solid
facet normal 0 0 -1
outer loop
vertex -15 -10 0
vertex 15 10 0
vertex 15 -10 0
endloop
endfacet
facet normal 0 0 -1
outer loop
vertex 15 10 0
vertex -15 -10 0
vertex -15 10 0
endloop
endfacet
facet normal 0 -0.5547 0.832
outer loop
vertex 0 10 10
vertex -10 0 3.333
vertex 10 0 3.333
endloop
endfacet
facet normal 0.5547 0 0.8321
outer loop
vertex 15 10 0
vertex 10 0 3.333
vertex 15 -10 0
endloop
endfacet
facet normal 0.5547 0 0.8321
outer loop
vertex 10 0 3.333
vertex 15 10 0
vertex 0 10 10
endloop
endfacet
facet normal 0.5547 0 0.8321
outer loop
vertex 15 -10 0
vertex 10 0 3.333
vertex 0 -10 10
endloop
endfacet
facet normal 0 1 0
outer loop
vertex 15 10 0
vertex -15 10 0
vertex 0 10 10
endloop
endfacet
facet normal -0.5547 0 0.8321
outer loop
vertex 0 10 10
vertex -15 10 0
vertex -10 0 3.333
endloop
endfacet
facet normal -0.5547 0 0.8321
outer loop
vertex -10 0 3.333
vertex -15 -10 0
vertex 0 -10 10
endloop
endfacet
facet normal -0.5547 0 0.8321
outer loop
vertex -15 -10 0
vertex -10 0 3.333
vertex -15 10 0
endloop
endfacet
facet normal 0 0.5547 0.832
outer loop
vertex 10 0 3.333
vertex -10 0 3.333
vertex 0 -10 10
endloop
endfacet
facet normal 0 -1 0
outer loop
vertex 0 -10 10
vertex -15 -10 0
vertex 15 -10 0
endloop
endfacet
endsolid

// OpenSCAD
height = 10;           // total height
top_radius = 15;       
$fn = 100;             // smoothness

// create single pyramid
module single_pyramid() {
    // define vertex
    points = [
        // Origin
        [0, 0, height],   
        
        // Four vertices of the top face (adjusted so one side is perpendicular to the top face)
        [-top_radius, -top_radius, 0], // 1: left rear
        [top_radius, -top_radius, 0],  // 2: right rear
        [top_radius, 0, 0],           // 3: right front（y=0 the side is perpendicular）
        [-top_radius, 0, 0]           // 4: left front
    ];
    
    // define faces
    faces = [
        [4, 3, 2, 1],    // top face (square)
        [0, 1, 2],       // back face (triangle)
        [0, 2, 3],       // right face (triangle)
        [0, 3, 4],       // front face (triangle)
        [0, 4, 1]        // left face (triangle)
    ];
    
    // Create a polyhedron
    polyhedron(
        points = points,
        faces = faces,
        convexity = 10
    );
}

// Create a complete double pyramid
module double_pyramid() {
    // firsr pyramid
    translate([0, 10, 0])
        single_pyramid();
    
    // second pyramid
    rotate([0,0,180])
    translate([0, 10, 0])
        single_pyramid();
}

// show the model
double_pyramid();
